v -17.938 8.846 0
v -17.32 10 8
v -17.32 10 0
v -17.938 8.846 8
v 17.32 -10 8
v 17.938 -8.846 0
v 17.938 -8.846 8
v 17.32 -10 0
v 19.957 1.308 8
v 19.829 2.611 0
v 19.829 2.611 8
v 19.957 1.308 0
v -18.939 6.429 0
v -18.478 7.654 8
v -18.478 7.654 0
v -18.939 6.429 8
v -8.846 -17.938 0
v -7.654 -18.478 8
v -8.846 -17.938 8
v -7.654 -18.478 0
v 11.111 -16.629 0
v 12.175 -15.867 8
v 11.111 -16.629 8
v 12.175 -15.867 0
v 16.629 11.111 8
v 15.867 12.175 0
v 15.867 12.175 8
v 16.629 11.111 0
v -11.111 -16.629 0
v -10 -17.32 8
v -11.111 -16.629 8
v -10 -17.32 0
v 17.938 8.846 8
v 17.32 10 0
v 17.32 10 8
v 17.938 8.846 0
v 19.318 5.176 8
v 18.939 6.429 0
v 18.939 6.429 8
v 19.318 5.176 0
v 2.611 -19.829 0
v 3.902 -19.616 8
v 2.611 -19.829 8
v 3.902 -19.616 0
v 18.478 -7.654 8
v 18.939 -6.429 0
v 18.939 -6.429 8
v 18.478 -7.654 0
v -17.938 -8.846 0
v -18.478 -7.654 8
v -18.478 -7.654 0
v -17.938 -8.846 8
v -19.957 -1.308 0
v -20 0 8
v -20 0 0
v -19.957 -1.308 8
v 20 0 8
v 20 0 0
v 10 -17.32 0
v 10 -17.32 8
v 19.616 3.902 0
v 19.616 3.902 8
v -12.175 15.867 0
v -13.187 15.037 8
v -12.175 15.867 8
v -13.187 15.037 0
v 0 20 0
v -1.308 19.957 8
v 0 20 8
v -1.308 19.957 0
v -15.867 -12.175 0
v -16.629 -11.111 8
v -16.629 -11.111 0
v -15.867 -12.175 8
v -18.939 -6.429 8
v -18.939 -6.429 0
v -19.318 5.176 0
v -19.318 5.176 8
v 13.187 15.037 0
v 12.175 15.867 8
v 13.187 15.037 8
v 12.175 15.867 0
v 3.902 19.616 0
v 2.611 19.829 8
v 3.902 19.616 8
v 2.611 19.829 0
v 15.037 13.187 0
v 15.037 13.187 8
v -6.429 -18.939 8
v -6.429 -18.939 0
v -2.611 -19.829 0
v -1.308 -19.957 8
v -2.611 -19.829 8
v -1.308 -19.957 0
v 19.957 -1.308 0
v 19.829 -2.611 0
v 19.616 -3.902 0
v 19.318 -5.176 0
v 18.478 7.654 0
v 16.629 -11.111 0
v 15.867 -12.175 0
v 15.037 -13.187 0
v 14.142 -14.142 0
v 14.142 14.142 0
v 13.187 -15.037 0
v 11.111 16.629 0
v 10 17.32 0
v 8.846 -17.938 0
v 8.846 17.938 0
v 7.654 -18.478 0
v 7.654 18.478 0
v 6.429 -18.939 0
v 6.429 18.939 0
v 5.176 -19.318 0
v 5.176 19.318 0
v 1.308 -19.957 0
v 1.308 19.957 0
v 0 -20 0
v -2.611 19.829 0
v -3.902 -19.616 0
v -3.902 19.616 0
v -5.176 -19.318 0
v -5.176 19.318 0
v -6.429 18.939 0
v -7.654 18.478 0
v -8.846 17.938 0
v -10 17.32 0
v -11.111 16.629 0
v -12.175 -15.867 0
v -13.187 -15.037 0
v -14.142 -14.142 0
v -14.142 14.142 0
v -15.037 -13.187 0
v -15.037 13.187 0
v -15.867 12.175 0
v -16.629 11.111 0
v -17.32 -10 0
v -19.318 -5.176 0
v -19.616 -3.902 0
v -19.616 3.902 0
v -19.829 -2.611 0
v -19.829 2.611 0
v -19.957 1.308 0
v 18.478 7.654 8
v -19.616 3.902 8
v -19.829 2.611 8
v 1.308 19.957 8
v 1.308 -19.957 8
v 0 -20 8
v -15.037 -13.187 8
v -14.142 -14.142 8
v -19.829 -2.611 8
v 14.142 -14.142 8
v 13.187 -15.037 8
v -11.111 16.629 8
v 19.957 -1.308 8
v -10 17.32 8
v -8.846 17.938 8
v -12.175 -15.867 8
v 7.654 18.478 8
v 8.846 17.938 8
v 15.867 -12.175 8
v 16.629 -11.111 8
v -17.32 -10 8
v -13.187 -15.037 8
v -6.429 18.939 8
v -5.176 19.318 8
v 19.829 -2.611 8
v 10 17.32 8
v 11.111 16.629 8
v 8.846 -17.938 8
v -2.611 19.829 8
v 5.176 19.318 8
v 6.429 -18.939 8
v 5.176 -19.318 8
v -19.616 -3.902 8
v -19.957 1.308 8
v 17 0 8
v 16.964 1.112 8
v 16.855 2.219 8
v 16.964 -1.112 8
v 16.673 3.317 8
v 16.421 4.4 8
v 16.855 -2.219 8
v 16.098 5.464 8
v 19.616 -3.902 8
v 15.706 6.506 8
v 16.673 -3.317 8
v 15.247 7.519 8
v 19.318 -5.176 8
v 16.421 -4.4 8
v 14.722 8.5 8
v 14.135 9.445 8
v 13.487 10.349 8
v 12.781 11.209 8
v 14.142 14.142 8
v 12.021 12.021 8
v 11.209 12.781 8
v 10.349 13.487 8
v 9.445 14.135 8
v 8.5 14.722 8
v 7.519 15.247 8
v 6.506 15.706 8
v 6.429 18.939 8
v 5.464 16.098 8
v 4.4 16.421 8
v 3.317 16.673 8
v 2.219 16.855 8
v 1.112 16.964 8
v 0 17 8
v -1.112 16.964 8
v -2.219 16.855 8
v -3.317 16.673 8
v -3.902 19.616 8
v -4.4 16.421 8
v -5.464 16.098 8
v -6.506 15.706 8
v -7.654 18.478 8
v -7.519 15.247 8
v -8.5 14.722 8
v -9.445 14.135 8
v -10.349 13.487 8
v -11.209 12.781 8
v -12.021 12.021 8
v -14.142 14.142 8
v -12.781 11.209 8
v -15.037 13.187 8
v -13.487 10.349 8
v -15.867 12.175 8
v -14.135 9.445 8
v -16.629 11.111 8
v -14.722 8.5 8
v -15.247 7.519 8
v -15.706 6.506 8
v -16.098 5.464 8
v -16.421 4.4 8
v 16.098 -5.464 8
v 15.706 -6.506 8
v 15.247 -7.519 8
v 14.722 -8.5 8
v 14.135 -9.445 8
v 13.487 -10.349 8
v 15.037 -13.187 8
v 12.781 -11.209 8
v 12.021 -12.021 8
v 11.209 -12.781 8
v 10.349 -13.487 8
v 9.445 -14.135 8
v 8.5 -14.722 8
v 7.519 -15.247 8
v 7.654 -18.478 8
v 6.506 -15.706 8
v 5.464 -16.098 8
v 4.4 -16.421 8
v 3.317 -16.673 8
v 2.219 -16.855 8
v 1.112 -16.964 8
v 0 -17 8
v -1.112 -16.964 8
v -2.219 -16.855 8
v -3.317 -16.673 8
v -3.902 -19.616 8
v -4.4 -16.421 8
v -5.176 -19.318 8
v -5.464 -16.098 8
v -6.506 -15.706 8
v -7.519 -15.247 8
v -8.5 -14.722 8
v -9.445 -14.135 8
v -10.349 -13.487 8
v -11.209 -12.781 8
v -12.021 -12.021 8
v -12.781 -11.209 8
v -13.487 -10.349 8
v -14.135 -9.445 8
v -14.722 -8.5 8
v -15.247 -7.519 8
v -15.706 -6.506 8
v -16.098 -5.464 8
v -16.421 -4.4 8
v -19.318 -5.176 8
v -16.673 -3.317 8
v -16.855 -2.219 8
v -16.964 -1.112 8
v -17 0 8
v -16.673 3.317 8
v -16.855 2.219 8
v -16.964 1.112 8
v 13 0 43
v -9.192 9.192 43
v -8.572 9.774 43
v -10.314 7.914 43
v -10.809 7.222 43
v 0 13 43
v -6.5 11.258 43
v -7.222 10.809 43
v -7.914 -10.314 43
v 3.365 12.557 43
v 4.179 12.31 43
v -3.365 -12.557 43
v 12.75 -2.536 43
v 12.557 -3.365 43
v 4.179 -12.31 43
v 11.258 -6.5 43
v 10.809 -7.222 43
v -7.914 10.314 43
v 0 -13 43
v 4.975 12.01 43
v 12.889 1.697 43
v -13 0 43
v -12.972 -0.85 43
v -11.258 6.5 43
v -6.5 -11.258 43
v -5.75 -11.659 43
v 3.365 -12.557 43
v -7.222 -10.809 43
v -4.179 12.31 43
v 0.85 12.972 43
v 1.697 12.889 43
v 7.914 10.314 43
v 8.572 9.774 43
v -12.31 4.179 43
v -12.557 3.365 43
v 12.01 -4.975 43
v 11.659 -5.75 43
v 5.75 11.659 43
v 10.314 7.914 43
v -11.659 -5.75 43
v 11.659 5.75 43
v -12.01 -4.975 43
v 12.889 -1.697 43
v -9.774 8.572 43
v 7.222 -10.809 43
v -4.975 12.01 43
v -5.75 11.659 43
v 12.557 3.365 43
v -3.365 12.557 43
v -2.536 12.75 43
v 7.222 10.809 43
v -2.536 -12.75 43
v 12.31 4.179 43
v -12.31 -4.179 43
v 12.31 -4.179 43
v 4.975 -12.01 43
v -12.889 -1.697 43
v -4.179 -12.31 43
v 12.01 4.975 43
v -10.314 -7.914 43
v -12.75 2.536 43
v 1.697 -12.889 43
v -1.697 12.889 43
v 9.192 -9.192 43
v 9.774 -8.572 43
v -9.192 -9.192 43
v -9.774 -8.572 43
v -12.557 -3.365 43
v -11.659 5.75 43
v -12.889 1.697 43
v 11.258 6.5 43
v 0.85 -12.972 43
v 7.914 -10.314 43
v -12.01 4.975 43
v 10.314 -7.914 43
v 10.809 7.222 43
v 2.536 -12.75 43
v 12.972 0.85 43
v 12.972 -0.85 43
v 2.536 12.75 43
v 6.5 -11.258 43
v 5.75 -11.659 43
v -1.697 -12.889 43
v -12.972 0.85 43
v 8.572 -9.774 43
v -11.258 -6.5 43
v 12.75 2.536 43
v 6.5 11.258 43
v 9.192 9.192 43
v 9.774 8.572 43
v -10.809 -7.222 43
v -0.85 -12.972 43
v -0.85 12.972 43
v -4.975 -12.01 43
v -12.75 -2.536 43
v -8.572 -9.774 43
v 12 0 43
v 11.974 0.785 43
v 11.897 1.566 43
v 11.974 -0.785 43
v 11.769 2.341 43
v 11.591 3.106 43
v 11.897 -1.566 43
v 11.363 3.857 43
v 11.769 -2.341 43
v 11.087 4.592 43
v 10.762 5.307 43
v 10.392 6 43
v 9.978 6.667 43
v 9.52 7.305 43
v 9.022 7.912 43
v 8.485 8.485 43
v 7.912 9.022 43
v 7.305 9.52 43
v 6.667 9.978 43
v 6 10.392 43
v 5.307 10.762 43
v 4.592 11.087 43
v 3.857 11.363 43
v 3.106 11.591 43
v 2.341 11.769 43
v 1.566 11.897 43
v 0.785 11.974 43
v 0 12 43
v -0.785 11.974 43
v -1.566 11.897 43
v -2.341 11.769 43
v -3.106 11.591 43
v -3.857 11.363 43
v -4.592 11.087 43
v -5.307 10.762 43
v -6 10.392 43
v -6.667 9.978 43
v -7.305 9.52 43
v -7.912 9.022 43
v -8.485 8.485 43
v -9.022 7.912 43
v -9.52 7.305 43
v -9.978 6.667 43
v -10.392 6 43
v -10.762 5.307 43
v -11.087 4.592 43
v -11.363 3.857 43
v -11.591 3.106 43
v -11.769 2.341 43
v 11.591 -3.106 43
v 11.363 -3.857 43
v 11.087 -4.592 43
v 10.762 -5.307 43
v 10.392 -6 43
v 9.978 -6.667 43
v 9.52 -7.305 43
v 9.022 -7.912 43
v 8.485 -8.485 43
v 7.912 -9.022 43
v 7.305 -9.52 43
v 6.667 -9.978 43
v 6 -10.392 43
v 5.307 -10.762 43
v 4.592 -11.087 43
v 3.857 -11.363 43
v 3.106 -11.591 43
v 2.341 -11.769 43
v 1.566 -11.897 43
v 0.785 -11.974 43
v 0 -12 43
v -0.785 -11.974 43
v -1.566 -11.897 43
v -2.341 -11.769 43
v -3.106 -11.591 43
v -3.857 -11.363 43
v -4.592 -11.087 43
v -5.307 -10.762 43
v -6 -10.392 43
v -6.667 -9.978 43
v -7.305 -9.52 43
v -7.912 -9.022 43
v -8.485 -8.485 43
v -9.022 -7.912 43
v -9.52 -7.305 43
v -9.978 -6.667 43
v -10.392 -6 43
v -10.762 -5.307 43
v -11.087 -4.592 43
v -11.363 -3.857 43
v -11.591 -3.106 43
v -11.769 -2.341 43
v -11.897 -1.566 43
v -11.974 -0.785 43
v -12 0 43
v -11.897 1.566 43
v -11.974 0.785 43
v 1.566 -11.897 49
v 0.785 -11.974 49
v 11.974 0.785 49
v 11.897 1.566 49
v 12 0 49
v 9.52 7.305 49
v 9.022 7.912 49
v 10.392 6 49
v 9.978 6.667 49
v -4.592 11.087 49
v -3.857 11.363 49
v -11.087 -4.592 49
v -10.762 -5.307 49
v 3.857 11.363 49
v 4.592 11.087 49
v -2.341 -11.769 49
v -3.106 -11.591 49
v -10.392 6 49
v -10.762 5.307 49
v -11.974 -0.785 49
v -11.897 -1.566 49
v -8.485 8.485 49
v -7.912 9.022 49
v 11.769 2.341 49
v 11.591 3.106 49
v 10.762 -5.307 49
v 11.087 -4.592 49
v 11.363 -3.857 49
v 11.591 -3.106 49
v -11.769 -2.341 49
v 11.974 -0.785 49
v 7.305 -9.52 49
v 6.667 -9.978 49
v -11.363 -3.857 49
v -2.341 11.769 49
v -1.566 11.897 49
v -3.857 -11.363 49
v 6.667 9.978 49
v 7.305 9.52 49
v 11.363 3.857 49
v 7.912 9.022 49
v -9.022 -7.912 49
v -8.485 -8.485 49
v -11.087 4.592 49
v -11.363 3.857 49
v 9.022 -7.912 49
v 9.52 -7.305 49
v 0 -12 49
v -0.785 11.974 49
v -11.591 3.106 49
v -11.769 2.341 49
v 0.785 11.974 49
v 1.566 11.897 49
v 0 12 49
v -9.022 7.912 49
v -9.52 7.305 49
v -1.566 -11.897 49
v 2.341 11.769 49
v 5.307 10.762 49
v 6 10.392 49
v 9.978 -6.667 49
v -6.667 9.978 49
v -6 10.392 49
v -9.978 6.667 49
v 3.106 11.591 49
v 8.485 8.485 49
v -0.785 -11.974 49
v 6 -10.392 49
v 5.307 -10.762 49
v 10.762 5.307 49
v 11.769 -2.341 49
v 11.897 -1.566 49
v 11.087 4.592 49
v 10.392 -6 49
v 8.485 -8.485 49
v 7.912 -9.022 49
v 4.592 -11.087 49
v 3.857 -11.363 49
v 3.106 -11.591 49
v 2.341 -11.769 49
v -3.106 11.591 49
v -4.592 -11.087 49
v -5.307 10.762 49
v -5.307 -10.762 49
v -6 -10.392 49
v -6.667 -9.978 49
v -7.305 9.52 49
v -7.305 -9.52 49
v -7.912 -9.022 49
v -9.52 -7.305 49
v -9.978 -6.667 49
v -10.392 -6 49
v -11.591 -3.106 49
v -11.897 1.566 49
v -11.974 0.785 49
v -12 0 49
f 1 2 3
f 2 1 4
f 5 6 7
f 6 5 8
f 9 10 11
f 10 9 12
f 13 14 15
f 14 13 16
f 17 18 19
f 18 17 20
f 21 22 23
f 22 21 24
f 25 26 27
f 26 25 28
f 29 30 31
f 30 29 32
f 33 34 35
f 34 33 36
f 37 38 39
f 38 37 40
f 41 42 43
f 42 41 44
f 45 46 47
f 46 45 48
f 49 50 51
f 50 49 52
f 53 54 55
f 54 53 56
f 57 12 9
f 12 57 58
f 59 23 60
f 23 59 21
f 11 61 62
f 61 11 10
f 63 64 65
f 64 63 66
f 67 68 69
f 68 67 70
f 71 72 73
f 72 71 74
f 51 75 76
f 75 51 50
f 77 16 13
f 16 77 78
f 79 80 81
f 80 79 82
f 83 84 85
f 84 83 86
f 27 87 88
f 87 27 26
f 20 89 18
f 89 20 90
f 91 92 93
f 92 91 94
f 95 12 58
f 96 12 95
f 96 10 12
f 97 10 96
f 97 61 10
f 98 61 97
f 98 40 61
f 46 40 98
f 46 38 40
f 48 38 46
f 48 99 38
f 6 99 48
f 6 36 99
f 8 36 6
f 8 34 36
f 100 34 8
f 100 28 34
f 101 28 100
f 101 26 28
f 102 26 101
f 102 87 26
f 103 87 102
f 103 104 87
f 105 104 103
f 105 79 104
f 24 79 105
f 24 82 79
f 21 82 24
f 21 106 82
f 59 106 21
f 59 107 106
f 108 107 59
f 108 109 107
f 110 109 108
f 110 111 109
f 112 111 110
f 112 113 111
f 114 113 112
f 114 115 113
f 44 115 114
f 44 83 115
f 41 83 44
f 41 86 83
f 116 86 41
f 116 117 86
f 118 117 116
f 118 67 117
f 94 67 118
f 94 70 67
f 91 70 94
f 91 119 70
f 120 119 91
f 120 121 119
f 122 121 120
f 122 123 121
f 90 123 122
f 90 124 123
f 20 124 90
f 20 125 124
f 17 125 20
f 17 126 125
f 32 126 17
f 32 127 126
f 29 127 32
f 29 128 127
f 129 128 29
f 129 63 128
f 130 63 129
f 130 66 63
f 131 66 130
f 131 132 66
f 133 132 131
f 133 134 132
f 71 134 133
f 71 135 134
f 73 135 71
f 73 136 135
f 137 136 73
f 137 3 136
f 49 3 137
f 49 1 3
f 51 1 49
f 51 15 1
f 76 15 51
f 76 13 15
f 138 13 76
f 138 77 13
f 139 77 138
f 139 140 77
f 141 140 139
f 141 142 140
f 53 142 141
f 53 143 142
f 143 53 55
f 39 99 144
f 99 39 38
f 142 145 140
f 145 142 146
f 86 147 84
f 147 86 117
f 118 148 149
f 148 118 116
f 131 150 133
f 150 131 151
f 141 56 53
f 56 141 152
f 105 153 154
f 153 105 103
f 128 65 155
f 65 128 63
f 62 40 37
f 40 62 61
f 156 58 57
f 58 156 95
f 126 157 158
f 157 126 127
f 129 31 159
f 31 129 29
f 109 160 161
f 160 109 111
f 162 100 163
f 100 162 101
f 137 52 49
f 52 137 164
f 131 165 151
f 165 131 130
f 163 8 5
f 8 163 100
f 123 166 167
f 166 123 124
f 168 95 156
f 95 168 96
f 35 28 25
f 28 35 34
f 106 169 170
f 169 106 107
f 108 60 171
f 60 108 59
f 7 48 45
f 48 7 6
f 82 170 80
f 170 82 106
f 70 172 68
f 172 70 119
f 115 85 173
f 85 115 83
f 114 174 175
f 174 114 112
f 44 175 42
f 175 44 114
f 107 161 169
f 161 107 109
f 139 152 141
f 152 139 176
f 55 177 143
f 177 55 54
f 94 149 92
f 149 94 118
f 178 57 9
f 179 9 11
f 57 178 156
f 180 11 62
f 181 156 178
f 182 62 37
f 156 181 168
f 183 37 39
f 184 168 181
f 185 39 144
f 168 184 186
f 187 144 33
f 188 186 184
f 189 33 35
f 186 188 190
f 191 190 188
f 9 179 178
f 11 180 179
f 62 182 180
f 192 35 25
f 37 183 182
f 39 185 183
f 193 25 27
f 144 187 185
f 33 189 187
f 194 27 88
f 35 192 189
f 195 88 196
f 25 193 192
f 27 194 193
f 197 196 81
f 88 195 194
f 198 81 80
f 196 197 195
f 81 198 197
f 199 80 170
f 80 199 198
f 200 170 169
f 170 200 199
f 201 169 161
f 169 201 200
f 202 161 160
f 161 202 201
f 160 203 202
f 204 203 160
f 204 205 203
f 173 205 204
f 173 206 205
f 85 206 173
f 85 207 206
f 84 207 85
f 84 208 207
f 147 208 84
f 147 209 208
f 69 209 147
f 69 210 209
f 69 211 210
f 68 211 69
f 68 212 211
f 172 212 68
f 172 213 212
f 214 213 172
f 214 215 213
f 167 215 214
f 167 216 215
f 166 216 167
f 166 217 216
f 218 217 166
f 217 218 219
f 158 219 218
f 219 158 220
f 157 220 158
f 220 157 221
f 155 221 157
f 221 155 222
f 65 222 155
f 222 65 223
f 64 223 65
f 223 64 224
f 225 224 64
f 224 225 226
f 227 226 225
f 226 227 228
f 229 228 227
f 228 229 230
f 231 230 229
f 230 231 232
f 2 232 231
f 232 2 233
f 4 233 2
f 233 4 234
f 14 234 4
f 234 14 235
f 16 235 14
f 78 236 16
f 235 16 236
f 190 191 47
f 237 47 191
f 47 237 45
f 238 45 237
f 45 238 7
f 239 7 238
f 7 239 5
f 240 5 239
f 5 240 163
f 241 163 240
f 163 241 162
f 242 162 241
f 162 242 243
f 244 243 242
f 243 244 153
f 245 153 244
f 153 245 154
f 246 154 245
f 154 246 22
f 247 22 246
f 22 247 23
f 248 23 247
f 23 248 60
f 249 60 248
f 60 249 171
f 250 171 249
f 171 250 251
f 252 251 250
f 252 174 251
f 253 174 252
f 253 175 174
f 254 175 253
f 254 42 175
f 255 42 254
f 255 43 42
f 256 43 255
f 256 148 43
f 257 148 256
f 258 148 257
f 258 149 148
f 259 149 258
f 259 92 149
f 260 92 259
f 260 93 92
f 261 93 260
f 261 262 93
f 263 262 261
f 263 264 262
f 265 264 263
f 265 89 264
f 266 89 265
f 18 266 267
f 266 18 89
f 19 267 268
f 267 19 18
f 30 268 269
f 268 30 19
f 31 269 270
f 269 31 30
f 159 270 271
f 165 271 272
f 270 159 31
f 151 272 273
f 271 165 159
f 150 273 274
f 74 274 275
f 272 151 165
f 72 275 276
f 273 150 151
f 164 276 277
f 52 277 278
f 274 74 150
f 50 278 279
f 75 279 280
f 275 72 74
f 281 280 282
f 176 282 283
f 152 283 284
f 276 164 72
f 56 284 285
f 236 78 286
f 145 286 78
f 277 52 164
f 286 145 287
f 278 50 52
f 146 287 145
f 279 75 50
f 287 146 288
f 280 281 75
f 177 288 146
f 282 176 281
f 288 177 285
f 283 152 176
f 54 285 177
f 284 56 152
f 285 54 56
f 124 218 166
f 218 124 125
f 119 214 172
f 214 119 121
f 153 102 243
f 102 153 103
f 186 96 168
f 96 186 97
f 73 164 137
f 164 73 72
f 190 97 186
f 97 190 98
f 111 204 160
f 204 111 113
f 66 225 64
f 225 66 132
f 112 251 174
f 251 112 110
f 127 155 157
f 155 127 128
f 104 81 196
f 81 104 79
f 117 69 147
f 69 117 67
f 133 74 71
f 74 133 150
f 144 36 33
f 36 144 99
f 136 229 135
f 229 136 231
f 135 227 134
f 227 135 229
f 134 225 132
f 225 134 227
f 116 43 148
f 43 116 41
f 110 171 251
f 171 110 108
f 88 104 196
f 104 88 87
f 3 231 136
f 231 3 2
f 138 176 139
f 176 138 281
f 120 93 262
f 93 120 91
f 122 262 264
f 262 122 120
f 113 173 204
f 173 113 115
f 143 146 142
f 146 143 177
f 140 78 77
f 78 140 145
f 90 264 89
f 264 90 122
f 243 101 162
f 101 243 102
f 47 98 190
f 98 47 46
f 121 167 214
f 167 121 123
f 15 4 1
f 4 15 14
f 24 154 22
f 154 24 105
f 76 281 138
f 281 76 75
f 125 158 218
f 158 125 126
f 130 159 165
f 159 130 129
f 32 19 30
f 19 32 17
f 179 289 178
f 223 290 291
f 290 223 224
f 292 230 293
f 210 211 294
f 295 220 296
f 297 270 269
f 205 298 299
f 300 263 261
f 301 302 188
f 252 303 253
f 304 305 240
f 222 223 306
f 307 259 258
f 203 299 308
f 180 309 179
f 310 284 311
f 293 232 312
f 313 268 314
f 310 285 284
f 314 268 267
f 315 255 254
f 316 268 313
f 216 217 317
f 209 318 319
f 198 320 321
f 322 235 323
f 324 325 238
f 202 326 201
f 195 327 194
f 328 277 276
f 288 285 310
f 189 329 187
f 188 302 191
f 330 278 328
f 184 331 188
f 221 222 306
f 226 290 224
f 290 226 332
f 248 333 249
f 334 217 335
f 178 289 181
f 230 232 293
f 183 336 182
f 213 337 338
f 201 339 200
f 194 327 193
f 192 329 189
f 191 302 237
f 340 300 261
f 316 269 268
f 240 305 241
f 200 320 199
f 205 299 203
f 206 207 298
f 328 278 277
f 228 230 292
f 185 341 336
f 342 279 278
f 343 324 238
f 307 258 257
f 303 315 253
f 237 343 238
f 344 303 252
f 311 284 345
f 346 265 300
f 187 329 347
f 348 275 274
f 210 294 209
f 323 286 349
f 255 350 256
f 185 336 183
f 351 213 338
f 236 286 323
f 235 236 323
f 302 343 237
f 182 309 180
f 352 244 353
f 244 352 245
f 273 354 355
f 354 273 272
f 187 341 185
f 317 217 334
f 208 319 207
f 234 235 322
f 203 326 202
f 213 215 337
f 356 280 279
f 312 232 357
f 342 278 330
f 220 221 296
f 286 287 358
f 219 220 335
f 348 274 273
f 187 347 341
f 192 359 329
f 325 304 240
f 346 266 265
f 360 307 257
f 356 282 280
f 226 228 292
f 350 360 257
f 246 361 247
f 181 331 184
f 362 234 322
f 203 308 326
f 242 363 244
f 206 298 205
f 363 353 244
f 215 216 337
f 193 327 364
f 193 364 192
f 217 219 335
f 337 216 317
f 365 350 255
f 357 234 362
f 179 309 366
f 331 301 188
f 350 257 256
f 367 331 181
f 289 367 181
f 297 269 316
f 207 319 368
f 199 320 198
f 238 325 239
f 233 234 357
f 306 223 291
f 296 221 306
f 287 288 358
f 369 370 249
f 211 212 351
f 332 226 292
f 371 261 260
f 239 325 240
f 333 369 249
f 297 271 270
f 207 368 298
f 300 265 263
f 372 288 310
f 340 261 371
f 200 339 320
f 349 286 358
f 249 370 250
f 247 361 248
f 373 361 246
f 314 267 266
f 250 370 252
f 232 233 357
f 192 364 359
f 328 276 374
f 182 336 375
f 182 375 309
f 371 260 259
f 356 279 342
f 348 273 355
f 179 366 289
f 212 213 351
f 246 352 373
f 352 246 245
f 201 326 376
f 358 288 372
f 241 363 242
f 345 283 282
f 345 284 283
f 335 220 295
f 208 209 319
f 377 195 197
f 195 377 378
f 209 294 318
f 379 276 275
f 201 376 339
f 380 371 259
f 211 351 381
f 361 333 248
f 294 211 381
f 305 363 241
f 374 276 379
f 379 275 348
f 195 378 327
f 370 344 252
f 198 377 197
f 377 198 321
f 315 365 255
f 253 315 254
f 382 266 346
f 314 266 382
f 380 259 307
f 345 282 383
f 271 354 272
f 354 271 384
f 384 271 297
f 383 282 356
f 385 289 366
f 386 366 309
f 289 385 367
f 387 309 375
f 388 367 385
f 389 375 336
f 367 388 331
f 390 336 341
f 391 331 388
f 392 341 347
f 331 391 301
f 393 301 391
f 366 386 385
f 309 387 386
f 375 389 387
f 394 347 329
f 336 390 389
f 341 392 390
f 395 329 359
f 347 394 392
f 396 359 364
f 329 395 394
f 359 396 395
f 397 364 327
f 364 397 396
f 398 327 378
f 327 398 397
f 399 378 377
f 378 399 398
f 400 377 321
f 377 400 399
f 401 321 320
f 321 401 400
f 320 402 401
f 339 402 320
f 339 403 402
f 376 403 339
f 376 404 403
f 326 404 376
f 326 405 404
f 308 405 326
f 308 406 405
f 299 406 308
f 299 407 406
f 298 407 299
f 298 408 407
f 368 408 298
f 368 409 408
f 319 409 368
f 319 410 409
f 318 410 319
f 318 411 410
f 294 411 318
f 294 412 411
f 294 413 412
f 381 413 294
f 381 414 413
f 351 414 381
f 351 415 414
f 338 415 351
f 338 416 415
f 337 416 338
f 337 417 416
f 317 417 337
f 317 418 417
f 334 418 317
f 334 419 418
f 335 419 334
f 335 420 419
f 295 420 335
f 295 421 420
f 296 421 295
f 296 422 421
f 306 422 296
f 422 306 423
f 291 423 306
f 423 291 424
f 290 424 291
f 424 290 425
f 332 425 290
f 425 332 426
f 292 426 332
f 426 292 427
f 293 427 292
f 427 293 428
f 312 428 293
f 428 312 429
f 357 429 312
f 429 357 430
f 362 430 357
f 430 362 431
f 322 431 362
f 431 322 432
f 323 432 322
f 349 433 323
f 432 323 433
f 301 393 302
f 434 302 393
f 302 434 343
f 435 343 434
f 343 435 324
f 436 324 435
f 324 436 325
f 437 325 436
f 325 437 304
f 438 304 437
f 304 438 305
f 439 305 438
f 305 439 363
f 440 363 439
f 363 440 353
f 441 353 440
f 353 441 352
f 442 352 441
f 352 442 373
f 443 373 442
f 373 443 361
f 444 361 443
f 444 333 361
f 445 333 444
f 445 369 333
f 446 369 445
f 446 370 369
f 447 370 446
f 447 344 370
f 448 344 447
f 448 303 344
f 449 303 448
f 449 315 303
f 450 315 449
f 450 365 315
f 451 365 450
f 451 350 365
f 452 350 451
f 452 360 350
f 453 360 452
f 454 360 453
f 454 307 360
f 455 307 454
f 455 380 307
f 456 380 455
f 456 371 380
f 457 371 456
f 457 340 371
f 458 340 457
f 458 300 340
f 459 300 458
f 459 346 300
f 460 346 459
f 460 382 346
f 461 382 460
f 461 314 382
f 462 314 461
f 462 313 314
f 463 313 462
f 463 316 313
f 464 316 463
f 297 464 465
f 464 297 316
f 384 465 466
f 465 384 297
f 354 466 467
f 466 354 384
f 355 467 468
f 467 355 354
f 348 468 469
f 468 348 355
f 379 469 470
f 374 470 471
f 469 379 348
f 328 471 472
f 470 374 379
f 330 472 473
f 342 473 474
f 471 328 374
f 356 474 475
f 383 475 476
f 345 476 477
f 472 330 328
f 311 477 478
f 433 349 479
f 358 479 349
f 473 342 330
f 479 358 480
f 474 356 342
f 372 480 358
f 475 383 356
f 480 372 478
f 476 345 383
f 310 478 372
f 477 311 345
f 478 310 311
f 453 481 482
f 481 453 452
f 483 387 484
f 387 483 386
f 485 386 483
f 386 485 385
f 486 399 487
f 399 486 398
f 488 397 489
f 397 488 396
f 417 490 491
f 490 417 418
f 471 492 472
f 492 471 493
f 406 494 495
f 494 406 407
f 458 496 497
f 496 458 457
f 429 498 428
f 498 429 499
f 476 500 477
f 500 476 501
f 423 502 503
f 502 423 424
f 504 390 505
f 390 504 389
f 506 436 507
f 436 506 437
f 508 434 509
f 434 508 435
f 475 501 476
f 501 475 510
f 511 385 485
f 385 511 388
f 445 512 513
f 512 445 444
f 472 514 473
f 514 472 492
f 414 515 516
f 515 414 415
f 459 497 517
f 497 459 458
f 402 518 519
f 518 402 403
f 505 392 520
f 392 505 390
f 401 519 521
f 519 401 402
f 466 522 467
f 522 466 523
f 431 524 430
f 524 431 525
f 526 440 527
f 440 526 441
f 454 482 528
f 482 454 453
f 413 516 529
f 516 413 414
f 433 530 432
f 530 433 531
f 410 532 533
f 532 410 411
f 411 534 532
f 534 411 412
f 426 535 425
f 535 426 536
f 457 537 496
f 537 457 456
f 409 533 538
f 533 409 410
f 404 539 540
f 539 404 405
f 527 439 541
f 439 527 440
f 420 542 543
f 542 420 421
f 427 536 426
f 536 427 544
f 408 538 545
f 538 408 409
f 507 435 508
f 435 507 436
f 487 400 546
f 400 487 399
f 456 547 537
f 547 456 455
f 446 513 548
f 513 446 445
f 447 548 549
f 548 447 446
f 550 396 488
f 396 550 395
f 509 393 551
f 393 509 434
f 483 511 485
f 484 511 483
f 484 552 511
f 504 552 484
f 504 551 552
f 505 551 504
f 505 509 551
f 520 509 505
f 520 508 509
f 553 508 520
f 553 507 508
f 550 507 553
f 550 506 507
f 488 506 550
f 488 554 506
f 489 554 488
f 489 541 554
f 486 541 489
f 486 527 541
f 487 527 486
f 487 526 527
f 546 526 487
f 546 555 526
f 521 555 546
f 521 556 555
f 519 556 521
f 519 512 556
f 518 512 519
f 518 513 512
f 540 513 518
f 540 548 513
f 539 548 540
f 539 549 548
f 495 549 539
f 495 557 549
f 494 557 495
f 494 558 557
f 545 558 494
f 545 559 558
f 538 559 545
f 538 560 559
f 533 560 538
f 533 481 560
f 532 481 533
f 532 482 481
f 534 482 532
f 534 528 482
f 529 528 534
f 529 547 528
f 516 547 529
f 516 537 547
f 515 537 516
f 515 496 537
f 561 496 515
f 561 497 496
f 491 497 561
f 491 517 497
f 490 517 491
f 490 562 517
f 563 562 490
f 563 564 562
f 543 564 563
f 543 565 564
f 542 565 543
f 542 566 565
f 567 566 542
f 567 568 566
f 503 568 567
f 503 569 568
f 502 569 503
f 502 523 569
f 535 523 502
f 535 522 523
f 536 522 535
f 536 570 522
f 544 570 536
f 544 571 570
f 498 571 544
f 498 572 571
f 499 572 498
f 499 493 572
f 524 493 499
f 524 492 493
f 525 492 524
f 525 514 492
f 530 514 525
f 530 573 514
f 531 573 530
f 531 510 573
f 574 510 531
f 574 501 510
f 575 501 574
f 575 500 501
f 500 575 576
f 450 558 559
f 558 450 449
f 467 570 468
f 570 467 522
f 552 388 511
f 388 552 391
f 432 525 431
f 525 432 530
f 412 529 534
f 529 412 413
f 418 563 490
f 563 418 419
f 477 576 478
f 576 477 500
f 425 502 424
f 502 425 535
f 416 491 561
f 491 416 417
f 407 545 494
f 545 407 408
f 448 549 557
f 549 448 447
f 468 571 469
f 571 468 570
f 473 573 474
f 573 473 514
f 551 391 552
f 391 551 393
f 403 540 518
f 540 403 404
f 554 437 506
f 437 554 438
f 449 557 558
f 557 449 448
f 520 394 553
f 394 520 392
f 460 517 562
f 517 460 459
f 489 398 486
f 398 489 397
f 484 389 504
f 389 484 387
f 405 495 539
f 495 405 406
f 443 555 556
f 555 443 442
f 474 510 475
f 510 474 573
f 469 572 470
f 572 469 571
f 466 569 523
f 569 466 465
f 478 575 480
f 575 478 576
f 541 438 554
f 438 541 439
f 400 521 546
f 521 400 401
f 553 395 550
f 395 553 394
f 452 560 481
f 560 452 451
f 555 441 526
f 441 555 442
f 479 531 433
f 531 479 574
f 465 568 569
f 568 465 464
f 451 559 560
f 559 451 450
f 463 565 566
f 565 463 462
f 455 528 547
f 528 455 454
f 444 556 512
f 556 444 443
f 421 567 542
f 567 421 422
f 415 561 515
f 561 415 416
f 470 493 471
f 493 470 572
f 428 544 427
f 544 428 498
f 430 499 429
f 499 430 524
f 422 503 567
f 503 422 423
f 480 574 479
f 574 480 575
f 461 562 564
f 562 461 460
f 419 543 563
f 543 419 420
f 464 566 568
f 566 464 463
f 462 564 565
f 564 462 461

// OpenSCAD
// Chess Rook Model
// Parametric simple rook with crenellations

$fn = 96;

module rook(
    base_d=40,
    base_h=8,
    body_d=30,
    body_h=35,
    taper=2,
    neck_d=24,
    neck_h=6,
    head_d=32,
    head_h=10,
    crenel_count=6,
    crenel_gap=6,
    wall_thickness=3
){
    union(){
        // Base
        cylinder(d=base_d, h=base_h);
        // Body tapered
        translate([0,0,base_h])
            cylinder(h=body_h, d1=body_d+taper*2, d2=body_d-taper*2);
        // Neck
        translate([0,0,base_h+body_h])
            cylinder(d=neck_d, h=neck_h);
        // Head ring with crenellations cut out
        translate([0,0,base_h+body_h+neck_h])
            head_with_crenels(head_d, head_h, crenel_count, crenel_gap, wall_thickness);
    }
}

module head_with_crenels(d, h, count, gap, thickness){
    difference(){
        // outer head
        cylinder(d=d, h=h);
        // hollow core to create wall thickness
        translate([0,0,0])
            cylinder(d=d-2*thickness, h=h);
        // crenel cutouts
        for(i=[0:count-1]){
            rotate([0,0,360/count * i])
                translate([d/2 - gap/2, 0, h/2])
                    cube([gap, d, h+2], center=true);
        }
    }
}

rook();
